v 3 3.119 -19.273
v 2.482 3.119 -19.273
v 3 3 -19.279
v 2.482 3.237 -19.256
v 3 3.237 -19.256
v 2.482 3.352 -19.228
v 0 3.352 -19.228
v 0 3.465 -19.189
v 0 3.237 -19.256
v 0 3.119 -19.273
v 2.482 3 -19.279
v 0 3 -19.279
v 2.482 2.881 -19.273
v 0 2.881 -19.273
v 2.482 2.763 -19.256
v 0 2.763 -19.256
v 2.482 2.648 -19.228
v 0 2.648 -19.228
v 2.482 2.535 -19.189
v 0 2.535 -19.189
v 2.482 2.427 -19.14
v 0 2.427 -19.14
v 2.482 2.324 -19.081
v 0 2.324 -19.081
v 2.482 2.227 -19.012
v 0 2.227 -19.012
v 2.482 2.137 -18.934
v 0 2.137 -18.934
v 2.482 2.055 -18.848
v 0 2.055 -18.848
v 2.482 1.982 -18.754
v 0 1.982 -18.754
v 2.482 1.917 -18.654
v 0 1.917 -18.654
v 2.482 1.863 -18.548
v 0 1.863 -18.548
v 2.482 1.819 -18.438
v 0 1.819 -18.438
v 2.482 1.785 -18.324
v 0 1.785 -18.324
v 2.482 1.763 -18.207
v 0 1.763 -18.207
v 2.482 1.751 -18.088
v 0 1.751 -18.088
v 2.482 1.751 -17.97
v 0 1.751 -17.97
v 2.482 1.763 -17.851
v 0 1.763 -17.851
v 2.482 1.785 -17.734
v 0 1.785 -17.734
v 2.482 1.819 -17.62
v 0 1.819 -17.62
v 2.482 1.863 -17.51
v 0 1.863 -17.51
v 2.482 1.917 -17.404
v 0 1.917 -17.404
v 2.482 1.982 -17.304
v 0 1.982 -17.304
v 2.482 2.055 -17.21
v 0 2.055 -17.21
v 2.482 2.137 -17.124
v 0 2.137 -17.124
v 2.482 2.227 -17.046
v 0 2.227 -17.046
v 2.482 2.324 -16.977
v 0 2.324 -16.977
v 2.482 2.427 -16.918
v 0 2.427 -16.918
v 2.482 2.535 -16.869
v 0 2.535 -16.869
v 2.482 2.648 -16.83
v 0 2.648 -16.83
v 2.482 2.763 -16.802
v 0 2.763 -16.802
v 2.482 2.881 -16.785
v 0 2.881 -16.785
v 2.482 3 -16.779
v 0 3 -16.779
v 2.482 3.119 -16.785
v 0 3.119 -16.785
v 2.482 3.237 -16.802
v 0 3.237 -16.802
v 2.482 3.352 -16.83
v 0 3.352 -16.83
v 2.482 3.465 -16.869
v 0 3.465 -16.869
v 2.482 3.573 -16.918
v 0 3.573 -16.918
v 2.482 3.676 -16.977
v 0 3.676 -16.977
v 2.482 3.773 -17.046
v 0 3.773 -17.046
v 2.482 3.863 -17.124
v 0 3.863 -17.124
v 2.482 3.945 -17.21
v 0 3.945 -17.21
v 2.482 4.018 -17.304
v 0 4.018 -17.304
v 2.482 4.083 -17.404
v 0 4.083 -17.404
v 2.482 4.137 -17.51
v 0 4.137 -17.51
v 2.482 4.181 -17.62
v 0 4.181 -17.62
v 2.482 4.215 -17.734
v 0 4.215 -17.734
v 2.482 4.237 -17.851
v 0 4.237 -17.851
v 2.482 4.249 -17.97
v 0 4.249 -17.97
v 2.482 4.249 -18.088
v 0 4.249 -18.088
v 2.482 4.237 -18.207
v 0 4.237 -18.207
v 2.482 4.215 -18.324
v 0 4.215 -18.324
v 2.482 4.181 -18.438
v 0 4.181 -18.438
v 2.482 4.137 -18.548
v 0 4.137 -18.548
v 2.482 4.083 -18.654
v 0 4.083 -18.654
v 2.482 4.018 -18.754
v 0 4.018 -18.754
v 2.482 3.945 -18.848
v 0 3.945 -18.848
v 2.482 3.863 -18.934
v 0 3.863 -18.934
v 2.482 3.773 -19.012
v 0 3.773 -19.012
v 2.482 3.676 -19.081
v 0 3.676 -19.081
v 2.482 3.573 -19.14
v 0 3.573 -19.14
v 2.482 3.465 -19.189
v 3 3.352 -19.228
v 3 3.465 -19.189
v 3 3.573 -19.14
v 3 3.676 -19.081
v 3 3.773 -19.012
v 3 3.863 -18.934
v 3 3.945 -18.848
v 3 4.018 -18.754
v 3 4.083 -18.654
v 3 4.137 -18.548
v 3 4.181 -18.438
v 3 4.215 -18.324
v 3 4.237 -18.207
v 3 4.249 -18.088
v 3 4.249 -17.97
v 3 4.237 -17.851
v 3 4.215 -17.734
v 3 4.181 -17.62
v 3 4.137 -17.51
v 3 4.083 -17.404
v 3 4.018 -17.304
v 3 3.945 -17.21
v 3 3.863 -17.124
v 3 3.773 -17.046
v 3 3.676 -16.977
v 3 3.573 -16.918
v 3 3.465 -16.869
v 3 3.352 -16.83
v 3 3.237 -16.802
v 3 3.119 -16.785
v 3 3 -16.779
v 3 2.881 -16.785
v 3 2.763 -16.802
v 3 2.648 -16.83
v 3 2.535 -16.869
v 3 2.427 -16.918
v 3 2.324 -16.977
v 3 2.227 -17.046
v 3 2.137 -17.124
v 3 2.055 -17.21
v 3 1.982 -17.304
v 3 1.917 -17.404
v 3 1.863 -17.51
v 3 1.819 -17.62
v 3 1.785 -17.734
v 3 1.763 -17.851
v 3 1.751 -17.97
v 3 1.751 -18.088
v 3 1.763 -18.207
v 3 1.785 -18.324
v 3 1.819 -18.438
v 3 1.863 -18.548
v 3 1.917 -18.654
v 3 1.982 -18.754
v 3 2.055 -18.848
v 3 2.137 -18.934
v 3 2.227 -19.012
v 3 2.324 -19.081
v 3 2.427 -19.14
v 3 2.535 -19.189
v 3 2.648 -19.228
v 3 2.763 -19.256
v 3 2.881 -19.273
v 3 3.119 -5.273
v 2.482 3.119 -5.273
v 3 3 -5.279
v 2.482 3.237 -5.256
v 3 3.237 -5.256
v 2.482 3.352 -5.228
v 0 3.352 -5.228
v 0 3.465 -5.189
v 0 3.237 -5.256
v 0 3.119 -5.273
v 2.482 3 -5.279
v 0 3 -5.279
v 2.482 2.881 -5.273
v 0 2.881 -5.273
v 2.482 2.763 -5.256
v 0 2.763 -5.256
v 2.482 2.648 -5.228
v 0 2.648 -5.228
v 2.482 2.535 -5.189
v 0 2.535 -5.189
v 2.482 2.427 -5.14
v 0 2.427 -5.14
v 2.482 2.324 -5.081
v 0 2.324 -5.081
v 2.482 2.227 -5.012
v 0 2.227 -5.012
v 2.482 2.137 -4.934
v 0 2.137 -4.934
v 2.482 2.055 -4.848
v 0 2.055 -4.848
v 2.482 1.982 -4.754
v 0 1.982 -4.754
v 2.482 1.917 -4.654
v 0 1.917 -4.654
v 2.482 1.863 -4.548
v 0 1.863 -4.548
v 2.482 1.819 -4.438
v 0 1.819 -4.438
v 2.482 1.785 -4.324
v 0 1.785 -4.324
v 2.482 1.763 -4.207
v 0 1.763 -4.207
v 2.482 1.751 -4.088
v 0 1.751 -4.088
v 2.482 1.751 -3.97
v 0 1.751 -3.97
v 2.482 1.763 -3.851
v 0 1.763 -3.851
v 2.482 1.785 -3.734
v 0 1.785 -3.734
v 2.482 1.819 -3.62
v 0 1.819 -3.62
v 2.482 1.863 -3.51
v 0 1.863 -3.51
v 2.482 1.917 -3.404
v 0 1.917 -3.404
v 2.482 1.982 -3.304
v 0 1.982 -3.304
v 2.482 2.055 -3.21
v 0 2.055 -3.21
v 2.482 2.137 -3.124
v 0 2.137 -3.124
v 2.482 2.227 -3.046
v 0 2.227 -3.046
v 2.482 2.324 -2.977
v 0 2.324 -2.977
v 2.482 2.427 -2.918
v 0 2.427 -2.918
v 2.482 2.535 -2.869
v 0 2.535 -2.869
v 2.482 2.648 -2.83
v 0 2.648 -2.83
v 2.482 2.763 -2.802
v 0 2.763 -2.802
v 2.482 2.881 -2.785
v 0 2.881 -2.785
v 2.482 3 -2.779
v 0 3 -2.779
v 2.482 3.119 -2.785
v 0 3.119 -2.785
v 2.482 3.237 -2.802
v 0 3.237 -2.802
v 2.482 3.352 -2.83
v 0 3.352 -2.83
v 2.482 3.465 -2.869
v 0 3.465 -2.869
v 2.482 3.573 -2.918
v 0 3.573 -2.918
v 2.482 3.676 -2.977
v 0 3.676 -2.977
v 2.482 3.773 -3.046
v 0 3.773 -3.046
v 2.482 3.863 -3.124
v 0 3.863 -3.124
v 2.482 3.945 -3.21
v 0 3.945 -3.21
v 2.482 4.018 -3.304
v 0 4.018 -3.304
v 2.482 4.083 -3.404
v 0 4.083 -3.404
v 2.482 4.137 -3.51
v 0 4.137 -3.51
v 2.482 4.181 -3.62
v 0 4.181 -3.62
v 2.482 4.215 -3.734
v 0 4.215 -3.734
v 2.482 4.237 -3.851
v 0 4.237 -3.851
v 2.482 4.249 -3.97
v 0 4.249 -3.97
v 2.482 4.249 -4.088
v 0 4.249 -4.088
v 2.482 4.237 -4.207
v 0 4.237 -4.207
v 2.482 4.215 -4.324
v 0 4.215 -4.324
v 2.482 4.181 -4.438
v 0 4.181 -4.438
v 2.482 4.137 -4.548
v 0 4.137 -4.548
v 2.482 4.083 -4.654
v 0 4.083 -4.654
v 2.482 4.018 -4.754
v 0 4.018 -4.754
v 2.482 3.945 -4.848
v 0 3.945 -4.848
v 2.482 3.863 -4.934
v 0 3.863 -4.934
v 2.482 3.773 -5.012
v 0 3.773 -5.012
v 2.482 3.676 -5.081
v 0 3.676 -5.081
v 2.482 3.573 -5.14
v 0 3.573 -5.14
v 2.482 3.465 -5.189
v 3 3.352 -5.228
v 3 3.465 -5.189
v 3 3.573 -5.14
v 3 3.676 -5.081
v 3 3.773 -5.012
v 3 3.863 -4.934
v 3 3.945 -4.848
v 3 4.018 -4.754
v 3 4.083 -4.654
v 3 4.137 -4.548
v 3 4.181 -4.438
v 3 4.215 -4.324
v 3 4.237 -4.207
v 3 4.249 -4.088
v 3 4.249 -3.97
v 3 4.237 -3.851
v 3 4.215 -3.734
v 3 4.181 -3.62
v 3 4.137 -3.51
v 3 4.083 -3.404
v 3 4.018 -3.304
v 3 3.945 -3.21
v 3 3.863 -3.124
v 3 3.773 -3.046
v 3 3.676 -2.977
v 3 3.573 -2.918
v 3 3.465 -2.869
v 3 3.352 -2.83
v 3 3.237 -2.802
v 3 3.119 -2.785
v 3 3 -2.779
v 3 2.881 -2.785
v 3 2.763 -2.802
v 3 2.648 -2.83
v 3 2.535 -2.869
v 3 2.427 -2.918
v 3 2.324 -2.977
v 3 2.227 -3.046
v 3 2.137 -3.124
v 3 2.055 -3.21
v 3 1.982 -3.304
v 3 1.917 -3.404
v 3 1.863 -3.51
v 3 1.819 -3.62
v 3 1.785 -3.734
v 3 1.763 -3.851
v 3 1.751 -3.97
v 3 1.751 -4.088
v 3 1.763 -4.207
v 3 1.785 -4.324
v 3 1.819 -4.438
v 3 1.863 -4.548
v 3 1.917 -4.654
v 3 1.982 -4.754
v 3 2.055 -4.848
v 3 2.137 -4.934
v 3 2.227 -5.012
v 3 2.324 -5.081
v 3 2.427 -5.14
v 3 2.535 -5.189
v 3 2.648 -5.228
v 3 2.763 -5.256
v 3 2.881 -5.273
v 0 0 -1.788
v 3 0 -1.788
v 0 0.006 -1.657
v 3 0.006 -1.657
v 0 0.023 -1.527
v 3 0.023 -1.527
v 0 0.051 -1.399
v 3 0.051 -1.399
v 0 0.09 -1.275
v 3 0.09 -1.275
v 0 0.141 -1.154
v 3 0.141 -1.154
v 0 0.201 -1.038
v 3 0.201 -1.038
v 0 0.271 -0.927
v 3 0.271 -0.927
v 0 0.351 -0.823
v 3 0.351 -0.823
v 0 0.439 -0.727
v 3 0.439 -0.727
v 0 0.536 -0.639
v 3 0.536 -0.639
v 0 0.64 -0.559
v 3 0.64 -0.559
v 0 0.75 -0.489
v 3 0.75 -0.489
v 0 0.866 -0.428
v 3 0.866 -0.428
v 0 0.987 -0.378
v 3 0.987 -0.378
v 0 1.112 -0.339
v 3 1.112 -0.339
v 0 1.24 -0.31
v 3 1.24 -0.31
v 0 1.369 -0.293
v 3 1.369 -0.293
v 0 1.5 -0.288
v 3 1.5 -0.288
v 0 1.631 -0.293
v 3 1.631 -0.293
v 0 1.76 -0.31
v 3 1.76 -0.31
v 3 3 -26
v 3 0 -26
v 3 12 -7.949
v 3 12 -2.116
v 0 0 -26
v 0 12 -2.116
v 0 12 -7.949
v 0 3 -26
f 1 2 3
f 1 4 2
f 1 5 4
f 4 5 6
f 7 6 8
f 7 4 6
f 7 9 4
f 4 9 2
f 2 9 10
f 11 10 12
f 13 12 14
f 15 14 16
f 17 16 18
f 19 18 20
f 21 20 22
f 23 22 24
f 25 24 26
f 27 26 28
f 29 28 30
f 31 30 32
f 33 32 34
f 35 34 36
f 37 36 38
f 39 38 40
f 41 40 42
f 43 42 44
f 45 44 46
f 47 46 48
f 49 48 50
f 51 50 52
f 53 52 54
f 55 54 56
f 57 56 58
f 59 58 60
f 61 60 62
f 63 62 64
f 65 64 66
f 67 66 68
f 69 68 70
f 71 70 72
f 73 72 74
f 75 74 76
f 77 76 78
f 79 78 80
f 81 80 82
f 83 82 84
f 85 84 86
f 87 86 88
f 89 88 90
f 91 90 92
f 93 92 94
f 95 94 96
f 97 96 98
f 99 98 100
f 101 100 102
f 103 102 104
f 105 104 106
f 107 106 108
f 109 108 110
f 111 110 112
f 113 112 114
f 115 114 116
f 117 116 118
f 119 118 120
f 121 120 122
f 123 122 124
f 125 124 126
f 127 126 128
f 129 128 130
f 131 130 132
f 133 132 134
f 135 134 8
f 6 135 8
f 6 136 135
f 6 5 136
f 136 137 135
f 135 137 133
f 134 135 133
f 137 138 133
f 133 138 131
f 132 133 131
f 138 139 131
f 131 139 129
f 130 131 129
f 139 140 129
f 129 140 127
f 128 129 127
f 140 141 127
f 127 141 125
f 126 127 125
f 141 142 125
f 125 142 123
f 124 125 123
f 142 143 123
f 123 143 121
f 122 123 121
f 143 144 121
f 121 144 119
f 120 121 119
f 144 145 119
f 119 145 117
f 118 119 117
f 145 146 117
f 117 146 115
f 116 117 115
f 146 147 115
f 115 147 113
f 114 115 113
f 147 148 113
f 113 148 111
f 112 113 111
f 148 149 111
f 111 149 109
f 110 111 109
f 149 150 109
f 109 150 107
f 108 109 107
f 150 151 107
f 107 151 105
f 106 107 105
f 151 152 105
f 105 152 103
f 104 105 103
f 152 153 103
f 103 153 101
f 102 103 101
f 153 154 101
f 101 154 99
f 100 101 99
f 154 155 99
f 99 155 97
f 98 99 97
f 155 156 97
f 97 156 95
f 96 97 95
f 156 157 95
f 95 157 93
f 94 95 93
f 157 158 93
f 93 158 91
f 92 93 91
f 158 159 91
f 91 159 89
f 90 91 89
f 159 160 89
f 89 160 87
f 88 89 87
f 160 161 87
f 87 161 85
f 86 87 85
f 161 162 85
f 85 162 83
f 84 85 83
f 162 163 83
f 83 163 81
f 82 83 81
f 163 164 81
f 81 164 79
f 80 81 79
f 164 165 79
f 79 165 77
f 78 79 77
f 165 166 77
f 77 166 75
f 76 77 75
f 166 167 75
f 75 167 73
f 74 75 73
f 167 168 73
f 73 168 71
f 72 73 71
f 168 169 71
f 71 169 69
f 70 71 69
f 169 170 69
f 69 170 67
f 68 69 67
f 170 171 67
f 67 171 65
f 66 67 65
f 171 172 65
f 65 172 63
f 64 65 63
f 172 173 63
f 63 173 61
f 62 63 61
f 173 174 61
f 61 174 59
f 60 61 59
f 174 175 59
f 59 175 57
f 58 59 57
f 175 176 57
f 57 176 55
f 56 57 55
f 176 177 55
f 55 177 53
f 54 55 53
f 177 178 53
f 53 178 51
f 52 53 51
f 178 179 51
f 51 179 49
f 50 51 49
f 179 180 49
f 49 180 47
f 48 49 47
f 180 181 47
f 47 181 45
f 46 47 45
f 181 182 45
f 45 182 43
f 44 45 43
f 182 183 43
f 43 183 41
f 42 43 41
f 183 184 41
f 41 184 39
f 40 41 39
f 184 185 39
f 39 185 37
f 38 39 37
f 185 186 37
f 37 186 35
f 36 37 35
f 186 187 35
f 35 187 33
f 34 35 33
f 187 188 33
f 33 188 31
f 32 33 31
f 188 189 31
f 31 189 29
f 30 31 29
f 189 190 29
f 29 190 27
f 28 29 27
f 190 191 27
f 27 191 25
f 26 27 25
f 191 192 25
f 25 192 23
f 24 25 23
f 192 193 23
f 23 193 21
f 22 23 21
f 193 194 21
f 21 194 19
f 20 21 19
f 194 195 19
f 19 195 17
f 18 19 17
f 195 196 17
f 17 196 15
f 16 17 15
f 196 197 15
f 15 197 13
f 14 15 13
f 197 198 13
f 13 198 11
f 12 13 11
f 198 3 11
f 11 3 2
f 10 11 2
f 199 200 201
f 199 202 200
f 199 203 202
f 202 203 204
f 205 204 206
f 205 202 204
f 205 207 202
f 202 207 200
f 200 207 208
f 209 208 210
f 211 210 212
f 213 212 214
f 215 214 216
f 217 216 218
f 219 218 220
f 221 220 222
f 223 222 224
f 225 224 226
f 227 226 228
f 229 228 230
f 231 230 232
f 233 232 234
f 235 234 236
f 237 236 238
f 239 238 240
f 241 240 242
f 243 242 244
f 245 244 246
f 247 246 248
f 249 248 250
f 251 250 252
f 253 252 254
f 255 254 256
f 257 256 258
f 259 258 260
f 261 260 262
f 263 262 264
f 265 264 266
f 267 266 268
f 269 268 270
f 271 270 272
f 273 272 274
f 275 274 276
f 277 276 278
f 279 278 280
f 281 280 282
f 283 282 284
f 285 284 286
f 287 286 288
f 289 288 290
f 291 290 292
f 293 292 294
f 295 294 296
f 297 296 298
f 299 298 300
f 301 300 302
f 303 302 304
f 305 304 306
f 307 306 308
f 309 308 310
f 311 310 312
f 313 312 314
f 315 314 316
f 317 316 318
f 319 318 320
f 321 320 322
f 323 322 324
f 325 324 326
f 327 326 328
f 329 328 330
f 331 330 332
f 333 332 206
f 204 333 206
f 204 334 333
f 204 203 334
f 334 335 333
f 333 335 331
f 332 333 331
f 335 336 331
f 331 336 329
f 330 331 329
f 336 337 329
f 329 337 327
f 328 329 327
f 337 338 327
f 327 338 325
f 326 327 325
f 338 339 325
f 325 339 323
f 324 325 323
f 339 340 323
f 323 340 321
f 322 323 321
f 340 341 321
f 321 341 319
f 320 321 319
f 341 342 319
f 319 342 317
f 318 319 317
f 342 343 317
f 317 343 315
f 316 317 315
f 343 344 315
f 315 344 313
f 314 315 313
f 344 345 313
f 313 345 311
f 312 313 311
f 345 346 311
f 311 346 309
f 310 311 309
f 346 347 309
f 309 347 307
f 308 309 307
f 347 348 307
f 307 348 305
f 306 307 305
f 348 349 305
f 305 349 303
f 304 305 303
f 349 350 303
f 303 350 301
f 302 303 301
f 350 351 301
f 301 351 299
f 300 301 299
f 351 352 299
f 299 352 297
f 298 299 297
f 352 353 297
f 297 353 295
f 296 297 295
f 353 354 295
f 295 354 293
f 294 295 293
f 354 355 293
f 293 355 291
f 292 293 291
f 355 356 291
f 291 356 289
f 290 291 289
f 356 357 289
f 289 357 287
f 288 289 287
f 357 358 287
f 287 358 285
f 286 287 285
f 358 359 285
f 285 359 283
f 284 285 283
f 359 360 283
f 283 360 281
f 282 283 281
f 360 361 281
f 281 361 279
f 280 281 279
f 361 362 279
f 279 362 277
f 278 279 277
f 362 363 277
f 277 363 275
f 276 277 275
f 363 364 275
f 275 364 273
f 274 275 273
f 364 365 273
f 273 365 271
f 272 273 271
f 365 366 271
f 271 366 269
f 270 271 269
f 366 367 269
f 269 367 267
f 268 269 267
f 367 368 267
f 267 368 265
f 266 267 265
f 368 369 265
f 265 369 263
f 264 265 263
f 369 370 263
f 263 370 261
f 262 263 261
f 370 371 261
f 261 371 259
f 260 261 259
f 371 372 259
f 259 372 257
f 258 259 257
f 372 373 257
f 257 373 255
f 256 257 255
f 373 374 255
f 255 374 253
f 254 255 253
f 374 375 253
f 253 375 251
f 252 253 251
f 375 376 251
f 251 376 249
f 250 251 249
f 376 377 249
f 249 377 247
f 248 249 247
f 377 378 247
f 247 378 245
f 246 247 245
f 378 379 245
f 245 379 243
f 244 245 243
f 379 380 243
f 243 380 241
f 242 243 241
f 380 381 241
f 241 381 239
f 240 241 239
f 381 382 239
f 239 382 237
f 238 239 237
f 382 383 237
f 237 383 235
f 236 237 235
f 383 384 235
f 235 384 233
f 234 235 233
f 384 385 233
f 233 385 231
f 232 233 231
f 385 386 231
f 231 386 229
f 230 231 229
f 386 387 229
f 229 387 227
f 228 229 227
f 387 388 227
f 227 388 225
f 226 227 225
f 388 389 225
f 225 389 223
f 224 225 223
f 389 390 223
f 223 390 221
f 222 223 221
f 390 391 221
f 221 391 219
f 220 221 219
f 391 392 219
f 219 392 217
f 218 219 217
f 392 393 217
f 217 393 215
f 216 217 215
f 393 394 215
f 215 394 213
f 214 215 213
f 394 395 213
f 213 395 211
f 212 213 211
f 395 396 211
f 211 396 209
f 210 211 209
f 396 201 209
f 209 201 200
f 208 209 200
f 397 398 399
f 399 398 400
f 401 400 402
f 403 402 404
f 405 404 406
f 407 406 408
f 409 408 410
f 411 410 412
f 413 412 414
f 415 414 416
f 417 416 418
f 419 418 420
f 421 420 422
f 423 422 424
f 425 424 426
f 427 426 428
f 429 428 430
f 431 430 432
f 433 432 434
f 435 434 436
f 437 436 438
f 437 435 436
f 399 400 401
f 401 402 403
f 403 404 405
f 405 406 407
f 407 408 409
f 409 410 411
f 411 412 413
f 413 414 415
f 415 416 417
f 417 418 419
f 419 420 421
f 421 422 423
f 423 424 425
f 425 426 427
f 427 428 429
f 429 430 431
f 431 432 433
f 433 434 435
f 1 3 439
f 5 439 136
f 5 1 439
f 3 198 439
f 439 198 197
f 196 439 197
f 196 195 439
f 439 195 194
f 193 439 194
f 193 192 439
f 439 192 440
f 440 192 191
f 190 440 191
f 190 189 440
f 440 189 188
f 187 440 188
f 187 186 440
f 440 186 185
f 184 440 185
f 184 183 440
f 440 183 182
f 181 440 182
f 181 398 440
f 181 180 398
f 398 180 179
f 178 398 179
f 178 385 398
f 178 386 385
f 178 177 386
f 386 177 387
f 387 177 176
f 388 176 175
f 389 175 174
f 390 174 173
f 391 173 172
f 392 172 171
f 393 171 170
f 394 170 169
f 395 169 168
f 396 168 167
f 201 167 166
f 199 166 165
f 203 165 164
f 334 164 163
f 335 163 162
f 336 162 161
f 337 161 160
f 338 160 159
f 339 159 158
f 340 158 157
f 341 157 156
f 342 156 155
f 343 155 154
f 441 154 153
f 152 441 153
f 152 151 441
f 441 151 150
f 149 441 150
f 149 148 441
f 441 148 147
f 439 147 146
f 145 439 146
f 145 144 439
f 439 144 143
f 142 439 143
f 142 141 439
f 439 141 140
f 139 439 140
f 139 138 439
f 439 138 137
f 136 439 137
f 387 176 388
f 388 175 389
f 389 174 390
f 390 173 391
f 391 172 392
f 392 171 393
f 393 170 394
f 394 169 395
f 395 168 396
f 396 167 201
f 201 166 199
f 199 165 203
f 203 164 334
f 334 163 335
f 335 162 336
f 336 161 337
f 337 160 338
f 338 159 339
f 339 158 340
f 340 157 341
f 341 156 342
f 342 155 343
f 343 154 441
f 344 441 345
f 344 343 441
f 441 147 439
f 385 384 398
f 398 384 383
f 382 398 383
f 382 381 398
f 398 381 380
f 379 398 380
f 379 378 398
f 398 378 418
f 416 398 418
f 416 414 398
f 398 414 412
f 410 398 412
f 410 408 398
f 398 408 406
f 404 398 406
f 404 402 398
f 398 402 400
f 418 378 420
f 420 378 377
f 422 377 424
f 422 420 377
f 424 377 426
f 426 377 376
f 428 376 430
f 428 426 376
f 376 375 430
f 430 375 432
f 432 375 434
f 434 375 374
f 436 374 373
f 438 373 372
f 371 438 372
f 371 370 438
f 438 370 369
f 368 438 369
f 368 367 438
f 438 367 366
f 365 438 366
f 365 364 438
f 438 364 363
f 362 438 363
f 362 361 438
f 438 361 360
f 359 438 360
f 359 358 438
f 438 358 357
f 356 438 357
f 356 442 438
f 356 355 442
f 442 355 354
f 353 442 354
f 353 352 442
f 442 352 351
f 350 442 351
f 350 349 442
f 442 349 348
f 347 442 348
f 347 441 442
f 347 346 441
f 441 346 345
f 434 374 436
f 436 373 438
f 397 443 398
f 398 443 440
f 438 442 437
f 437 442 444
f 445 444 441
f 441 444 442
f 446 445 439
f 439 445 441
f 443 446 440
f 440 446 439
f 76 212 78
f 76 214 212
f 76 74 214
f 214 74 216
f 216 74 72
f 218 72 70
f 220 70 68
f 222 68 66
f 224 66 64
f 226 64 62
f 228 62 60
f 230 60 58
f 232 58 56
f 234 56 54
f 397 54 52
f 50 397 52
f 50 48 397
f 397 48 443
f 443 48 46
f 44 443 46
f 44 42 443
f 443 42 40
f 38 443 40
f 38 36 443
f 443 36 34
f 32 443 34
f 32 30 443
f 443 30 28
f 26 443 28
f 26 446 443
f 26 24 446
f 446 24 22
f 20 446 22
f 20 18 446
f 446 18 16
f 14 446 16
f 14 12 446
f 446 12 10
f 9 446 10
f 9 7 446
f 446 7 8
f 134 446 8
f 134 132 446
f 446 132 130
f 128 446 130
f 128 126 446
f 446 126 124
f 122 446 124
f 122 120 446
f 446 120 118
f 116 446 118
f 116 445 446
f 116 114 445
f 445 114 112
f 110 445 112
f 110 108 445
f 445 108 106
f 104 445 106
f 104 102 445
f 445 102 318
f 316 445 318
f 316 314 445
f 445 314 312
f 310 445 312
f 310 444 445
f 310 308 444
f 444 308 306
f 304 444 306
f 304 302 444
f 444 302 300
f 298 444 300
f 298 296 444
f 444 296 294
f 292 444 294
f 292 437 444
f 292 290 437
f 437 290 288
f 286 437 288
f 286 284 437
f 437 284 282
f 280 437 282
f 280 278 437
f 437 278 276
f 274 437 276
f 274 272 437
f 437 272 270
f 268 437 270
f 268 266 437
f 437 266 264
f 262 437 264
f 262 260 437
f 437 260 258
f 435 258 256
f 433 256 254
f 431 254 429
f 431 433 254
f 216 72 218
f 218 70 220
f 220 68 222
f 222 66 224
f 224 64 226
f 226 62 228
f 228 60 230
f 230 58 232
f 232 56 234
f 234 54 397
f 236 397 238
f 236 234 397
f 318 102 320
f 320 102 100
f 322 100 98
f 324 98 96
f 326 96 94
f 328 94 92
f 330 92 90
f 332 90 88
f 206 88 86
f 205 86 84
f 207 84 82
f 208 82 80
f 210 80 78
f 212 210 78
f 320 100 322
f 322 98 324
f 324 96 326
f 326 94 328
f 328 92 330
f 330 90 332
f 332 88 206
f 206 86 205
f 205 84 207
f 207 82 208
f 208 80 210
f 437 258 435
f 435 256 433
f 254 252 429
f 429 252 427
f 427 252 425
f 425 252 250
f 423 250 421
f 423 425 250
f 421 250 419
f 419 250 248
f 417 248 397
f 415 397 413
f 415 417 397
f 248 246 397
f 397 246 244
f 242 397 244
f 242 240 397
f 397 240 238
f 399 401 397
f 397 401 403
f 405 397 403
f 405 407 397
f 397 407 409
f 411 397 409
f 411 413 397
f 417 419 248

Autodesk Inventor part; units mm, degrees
ref_plane "YZ Plane" through (0, 0, 0) normal (1, 0, 0) x (0, 1, 0)
ref_plane "XZ Plane" through (0, 0, 0) normal (0, 1, 0) x (-1, 0, 0)
ref_plane "XY Plane" through (0, 0, 0) normal (0, 0, 1) x (1, 0, 0)
sketch "Base" plane through (0, 0, 0) normal (1, 0, 0) x (0, 1, 0)
  line L0 (3, -26) -> (0, -26)
  line L1 (3, -26) -> (12, -7.9488)
  line L2 (12, -7.9488) -> (12, -2.1159)
  line L3 (12, -2.1159) -> (0, 0)
  line L4 (0, -26) -> (0, 0)
  dimension "d0" = 12
  dimension "d1" = 80
  dimension "d2" = 26.5
  dimension "d3" = 26
  dimension "d4" = 3
extrude "BaseFeature" add sketch "Base" along normal blind 3
fillet "BaseFilletsFeature" radius 1.5 1 edges at (1.5, 0, 0)
sketch "BaseHoles" plane through (0, 0, 0) normal (-1, 0, 0) x (0, 0, 1)
  line L0 (-26, 3) -> (-0.529, 3) construction
  line L1 (-0.3104, 1.7605) -> (-2.1159, 12) construction
  circle A0 centre (-18.029, 3) radius 1.75
  circle A1 centre (-4.029, 3) radius 1.75
  circle A2 centre (-18.029, 3) radius 7 construction
  circle A3 centre (-4.029, 3) radius 7 construction
  dimension "d9" = 3.5
  dimension "d12" = 3.5
  dimension "d14" = 14
  dimension "d22" = 14
hole "BaseHolesFeature" at (0, 3, -18.029) at (0, 3, -4.029) direction (1, 0, 0) diameter 2.5 end through all
properties part number "Knuckle"
